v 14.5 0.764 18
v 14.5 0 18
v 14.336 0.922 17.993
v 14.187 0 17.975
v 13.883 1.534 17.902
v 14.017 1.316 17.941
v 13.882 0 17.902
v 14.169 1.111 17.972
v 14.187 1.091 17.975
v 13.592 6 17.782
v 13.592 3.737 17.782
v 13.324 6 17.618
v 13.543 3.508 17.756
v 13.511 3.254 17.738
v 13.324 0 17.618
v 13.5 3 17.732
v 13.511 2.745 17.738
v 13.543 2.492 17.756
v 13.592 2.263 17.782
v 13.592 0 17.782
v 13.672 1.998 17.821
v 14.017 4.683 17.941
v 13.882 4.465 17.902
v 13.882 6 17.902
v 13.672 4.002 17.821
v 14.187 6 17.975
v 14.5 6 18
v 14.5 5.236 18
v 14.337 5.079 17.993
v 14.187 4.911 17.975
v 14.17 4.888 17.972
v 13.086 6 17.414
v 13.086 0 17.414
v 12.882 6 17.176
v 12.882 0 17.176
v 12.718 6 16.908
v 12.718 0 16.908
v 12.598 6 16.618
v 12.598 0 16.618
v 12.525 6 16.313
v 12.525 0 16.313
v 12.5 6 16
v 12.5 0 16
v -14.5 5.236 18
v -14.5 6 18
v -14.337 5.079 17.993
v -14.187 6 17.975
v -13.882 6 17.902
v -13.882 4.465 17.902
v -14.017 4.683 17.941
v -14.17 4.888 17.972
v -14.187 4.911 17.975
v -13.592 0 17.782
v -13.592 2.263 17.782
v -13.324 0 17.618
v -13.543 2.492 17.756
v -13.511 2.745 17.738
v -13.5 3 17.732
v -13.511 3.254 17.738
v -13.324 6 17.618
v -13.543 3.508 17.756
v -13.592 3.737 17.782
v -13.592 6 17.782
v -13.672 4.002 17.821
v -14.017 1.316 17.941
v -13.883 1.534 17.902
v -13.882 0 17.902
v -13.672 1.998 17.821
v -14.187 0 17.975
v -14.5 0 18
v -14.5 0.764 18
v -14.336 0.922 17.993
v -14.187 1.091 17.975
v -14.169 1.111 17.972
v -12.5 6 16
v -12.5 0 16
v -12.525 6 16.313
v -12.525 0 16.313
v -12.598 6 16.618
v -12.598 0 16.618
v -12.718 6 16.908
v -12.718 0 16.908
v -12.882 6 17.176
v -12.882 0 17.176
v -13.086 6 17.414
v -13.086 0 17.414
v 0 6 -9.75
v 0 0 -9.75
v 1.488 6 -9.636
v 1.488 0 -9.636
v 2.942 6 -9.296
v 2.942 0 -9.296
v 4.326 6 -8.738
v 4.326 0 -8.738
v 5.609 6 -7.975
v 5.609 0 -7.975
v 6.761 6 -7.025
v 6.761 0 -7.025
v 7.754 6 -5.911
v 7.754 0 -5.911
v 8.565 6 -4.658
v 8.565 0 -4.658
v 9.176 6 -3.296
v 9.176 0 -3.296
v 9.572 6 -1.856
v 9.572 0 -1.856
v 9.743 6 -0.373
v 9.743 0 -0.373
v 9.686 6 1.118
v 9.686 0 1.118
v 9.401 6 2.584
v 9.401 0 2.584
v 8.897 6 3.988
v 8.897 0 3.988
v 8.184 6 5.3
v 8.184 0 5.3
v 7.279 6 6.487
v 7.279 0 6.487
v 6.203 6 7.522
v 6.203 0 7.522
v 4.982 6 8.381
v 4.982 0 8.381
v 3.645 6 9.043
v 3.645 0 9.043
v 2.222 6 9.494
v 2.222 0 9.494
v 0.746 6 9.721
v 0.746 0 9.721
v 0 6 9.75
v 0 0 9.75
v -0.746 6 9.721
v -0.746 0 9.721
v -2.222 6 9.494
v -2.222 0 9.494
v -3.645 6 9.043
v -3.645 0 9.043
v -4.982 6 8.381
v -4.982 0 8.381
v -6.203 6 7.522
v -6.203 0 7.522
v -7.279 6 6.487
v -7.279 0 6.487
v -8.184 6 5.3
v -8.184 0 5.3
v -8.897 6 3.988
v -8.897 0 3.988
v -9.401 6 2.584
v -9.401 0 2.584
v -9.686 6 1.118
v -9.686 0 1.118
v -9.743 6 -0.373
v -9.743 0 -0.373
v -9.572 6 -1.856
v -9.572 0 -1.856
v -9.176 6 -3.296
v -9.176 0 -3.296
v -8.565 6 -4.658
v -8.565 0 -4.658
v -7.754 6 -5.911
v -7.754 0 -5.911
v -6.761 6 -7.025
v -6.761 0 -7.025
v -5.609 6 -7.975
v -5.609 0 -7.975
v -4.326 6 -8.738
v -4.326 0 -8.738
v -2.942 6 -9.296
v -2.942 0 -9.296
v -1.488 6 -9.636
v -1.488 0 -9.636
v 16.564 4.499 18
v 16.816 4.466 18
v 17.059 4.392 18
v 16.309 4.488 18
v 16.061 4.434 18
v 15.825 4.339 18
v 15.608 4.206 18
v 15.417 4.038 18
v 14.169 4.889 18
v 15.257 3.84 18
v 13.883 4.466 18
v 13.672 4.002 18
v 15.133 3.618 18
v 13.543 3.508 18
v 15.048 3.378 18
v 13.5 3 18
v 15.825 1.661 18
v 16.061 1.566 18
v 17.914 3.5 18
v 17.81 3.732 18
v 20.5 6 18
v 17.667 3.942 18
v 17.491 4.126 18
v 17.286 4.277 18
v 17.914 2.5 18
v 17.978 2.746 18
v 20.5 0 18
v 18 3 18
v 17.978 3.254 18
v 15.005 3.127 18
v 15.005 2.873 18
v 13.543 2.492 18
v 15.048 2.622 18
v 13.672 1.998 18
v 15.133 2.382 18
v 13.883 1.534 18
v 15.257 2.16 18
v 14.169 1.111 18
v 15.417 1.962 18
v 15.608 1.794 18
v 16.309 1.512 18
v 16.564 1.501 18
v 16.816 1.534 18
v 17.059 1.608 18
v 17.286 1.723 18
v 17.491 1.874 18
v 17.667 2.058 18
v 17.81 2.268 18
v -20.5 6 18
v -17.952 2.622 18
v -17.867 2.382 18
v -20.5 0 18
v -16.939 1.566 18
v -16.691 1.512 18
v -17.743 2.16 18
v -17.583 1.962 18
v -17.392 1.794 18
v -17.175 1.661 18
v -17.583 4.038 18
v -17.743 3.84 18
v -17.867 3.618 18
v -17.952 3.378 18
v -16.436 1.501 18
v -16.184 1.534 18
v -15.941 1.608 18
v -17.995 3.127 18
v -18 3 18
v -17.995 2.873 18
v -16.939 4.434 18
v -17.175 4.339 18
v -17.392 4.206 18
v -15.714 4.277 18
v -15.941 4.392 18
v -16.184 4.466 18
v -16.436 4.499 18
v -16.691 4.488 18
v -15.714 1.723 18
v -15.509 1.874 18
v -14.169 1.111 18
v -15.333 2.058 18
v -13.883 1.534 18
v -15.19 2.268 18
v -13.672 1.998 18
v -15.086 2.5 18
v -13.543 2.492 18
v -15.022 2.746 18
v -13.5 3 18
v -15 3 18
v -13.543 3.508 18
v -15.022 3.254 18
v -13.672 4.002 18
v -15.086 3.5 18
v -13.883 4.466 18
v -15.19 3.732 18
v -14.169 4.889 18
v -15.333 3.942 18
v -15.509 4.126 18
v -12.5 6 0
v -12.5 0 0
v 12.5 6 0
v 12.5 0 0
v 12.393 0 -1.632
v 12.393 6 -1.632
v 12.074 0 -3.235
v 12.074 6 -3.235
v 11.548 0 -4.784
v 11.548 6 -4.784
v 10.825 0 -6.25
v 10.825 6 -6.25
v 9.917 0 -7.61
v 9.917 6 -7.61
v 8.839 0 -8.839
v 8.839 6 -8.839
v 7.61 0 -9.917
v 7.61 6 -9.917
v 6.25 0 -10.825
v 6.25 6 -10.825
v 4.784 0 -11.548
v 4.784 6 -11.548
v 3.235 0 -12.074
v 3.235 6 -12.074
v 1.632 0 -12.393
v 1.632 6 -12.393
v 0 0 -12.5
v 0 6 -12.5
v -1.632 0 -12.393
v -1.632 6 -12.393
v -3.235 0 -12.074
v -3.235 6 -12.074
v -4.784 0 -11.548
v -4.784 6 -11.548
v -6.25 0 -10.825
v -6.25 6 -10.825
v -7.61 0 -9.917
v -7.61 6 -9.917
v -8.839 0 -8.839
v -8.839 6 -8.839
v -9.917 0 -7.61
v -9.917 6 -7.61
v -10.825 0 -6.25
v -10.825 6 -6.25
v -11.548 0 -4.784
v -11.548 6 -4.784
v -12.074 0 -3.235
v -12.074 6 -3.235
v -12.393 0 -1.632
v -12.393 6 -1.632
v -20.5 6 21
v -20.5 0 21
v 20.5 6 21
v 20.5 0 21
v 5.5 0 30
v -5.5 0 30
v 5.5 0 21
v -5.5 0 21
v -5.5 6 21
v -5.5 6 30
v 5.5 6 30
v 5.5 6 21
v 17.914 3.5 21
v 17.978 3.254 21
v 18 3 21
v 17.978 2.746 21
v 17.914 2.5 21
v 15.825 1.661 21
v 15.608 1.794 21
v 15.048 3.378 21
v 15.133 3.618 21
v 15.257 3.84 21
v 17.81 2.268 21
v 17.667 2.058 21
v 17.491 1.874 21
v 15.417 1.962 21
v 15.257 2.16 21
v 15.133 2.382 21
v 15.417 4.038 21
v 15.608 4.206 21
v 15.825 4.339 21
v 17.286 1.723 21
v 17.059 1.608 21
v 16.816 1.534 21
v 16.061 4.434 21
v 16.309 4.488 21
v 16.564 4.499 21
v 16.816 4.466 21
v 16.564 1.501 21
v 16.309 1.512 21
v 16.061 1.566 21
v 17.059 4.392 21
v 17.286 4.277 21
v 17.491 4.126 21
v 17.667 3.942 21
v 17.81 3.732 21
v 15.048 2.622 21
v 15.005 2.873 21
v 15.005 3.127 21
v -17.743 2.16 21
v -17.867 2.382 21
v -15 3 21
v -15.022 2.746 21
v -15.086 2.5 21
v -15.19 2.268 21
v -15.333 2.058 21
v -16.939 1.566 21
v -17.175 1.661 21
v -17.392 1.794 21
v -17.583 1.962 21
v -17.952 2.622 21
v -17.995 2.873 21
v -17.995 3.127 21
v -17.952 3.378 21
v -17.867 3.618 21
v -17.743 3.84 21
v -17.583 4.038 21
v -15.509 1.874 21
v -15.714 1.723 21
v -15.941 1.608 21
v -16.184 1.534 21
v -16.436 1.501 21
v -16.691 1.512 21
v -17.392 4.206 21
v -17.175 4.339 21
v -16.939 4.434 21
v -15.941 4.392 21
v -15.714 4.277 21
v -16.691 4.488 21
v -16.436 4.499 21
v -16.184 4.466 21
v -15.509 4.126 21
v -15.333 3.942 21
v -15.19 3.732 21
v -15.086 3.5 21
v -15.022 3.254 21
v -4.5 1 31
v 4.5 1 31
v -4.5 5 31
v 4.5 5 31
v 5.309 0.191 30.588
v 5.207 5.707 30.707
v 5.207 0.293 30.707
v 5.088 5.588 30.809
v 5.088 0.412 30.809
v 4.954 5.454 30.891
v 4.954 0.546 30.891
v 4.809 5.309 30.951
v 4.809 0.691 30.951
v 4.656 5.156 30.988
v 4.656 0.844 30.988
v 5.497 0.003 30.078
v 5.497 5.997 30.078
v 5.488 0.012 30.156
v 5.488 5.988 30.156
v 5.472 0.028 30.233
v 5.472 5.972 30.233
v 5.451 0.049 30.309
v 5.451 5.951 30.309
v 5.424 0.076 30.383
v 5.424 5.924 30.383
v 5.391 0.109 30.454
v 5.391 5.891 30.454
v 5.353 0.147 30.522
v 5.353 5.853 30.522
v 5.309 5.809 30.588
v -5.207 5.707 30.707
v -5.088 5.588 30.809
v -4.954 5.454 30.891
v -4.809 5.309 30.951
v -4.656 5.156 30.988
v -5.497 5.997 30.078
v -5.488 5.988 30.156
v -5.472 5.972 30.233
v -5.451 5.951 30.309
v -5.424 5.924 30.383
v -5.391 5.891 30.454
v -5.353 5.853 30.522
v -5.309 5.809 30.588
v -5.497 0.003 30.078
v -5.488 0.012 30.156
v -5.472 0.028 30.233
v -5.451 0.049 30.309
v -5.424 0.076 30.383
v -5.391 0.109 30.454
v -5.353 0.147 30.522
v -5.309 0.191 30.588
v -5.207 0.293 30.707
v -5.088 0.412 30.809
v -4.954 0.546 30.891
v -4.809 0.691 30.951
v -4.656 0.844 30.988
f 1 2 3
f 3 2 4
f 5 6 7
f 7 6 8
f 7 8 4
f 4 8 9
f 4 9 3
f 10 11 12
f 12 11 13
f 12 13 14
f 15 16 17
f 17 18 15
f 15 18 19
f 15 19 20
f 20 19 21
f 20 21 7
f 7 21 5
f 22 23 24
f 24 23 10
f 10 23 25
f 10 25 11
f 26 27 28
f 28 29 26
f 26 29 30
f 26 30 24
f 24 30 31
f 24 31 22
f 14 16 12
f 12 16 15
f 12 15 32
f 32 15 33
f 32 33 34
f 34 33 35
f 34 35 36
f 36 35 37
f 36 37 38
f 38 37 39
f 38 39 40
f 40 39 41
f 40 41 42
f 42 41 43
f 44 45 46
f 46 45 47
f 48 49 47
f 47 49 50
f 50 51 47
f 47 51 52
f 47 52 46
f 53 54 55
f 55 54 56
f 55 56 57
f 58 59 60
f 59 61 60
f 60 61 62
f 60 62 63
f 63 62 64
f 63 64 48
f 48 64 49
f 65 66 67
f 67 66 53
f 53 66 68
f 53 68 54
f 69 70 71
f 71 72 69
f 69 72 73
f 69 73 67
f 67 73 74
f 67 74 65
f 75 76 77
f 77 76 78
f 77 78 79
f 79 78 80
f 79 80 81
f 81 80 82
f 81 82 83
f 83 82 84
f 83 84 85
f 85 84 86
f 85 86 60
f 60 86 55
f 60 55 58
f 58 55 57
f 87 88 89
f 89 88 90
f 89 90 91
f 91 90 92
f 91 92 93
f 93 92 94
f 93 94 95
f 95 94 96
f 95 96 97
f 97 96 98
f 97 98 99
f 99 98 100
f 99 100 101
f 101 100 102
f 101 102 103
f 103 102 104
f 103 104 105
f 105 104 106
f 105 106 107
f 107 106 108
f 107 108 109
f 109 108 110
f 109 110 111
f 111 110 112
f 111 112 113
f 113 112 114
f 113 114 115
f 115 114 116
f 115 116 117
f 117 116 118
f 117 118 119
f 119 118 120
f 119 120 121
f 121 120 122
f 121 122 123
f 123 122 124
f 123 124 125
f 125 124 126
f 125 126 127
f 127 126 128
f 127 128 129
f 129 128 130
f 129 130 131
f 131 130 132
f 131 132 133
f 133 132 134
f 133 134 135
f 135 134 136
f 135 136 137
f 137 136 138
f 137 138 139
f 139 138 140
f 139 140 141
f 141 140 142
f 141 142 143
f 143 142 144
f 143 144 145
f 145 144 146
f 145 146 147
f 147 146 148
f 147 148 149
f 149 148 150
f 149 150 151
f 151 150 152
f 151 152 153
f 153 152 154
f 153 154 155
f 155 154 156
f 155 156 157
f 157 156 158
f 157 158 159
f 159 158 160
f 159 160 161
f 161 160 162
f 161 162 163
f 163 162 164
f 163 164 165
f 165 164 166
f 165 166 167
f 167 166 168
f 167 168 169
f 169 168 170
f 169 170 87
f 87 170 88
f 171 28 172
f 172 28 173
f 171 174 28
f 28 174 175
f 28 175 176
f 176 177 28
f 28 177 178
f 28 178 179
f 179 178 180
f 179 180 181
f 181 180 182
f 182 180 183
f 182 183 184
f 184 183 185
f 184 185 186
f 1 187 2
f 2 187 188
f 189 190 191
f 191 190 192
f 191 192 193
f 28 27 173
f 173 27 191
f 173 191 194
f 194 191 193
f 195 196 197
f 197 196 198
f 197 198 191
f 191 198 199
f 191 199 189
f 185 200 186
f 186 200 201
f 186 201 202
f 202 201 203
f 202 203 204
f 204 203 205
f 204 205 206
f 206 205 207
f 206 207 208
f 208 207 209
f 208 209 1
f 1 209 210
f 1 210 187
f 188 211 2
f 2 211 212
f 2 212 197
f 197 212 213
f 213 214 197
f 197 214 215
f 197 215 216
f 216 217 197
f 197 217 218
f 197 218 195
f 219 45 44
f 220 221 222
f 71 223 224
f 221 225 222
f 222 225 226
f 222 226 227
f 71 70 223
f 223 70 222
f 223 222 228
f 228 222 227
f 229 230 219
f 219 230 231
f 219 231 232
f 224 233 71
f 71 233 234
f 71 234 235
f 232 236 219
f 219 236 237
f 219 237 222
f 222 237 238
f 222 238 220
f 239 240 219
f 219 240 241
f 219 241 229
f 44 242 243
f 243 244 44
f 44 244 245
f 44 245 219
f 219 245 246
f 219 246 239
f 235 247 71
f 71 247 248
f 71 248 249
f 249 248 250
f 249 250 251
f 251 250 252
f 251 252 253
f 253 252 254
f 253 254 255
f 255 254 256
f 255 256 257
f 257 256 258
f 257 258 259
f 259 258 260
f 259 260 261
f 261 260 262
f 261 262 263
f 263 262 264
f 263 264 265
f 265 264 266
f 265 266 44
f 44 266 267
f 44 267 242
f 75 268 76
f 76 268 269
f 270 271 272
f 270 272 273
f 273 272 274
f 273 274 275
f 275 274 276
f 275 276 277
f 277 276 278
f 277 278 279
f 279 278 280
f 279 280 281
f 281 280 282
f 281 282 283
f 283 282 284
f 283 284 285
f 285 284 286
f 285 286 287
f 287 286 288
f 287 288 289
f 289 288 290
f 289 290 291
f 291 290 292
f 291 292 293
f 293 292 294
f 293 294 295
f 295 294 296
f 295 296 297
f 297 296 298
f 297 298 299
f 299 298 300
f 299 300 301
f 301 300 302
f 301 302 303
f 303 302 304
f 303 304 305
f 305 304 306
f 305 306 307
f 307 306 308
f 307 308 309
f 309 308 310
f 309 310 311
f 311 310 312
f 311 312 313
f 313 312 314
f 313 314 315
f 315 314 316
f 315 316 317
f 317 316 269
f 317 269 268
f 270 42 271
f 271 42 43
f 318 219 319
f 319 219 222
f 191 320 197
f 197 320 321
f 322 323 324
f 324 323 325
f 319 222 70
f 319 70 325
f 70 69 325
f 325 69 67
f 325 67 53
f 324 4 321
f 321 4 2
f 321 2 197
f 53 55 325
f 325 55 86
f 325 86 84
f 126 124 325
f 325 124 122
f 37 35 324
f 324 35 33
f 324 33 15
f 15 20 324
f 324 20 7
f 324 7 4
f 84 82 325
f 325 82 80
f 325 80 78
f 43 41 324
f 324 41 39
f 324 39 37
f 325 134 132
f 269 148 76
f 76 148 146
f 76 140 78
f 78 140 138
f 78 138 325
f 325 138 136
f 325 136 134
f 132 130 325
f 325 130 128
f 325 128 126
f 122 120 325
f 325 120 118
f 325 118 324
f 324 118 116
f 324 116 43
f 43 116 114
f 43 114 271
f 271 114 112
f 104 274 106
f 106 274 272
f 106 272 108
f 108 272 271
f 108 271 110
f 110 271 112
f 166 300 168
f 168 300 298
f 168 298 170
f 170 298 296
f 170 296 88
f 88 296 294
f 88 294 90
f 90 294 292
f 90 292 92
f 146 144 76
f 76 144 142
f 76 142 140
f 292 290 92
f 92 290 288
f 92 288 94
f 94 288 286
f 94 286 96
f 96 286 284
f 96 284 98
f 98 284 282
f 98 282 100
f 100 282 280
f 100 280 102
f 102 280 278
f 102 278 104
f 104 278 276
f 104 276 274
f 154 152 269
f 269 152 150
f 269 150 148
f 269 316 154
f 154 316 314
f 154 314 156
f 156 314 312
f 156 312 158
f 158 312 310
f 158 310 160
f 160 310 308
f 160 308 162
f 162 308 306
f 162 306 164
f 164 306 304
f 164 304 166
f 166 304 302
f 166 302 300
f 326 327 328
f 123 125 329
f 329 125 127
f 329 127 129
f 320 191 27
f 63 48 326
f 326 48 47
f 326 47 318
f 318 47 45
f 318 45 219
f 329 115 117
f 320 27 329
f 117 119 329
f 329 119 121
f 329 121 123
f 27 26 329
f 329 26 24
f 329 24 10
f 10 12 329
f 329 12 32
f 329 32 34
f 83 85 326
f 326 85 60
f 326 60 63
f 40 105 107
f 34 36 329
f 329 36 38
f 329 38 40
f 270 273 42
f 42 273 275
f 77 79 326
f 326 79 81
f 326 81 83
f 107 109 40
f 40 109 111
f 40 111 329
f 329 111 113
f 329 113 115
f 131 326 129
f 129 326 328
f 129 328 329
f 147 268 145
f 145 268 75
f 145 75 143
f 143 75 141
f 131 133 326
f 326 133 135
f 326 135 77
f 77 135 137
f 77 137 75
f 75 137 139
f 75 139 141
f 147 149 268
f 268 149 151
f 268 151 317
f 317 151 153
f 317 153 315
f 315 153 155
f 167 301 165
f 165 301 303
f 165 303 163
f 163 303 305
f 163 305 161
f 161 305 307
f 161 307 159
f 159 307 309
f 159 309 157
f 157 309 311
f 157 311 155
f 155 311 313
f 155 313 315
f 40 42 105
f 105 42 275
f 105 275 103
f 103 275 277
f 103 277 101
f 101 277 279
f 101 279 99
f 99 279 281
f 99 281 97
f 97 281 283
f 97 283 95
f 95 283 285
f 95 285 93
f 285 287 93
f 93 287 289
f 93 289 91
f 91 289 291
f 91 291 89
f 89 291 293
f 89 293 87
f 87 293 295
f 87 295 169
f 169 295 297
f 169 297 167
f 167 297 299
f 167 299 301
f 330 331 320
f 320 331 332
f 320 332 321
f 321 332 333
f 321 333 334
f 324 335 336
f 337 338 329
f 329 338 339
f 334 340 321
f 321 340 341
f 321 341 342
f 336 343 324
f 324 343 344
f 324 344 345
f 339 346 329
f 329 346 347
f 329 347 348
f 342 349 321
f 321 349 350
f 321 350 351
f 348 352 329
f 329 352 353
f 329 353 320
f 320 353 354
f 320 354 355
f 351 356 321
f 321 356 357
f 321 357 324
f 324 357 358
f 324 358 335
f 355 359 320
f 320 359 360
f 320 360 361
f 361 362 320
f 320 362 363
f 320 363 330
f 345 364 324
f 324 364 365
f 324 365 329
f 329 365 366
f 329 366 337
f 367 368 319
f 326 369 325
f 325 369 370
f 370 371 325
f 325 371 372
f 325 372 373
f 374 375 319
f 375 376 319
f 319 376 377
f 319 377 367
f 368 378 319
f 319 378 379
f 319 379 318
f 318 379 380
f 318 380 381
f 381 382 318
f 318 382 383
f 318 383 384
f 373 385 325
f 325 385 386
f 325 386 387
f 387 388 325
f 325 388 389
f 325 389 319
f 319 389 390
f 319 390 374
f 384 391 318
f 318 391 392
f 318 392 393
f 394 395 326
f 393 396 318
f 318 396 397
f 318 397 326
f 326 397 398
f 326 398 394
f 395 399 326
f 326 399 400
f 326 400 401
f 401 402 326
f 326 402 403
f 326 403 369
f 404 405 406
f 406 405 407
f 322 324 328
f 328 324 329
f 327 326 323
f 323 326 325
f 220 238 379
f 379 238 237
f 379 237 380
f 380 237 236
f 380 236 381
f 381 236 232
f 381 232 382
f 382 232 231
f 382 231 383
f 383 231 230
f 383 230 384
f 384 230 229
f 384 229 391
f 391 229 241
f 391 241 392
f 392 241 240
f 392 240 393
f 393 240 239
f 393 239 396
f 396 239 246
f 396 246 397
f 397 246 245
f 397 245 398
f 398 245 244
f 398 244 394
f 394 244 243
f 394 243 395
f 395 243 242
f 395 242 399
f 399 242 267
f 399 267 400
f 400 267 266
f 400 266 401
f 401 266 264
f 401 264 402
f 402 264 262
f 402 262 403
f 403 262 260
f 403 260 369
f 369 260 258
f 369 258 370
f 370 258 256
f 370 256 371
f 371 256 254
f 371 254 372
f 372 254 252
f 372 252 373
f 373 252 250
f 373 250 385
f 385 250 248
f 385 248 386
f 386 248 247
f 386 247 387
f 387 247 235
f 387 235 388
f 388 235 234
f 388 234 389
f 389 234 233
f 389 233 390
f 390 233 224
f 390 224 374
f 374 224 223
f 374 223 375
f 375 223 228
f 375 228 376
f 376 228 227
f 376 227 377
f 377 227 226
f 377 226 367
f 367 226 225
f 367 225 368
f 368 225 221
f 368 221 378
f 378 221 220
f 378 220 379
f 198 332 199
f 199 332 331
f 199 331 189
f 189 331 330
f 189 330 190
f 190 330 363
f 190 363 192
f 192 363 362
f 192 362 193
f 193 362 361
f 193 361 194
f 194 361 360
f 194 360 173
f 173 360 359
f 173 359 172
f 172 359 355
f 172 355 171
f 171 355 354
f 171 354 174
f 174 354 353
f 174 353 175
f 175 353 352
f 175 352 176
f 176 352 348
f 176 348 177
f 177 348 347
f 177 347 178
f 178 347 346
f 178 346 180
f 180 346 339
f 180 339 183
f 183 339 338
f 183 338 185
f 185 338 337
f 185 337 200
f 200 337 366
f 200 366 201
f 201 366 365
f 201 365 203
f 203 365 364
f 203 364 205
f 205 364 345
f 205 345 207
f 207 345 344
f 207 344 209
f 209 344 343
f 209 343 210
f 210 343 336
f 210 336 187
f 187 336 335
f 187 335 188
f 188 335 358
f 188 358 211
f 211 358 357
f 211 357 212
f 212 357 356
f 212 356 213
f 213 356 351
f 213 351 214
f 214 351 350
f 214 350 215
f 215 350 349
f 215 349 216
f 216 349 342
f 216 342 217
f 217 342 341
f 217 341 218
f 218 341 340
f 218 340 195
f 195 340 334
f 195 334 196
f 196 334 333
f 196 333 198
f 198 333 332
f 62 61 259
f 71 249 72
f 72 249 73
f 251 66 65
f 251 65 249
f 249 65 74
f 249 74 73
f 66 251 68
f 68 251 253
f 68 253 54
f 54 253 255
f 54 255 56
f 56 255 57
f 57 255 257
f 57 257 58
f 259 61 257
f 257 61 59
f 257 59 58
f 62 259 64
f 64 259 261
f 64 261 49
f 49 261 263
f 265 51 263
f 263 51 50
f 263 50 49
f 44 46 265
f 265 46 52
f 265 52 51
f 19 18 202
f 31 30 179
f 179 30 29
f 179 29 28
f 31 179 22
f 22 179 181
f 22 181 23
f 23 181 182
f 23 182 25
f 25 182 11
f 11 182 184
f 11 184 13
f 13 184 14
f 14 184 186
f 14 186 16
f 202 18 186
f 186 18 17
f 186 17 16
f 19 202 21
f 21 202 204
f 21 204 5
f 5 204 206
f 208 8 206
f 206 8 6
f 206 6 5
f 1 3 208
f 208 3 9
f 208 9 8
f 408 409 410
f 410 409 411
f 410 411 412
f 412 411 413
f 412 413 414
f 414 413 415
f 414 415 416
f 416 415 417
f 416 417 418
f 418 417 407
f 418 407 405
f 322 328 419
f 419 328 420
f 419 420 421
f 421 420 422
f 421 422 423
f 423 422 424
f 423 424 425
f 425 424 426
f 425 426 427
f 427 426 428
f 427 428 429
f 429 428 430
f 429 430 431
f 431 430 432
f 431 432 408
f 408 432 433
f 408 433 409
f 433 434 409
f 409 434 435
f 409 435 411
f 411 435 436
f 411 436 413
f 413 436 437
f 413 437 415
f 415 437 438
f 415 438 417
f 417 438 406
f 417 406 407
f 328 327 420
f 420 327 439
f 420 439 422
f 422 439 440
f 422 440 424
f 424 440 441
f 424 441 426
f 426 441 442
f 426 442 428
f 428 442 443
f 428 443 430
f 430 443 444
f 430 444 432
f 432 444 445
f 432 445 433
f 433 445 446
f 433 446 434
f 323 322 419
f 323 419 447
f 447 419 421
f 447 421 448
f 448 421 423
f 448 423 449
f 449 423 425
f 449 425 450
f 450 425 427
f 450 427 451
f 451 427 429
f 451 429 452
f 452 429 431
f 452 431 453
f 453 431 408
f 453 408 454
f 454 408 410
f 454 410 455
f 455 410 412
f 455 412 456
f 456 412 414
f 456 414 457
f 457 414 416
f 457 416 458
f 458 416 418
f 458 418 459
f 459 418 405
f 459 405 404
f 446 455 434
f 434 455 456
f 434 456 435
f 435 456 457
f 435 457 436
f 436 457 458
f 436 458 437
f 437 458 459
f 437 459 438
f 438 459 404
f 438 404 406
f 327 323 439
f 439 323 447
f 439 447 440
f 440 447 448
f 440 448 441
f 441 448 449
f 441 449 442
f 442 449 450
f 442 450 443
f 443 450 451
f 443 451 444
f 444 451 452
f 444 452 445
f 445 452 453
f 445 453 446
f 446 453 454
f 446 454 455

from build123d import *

# Parameters (mm, degrees)
CROQUIS1_R              = 9.75
SALIENTE_EXTRUIR1_DEPTH = 6
CROQUIS2_R              = 1.5
CORTAR_EXTRUIR1_DEPTH   = 6
CROQUIS3_R              = 3
CORTAR_EXTRUIR2_DEPTH   = 6
REDONDEO1_R             = 1


with BuildPart() as part:
    # Croquis1 → Saliente-Extruir1 (new body)
    with BuildSketch(Plane(origin=(0, 0, 0), x_dir=(1, 0, 0), z_dir=(0, 1, 0))):
        with BuildLine():
            ThreePointArc((12.5, 0), (0, 12.5), (-12.5, 0))
            Line((-12.5, 0), (-12.5, -16))
            ThreePointArc((-12.5, -16), (-13.085786438, -17.414213562), (-14.5, -18))
            Line((-14.5, -18), (-20.5, -18))
            Line((-20.5, -18), (-20.5, -21))
            Line((-20.5, -21), (-5.5, -21))
            Line((-5.5, -21), (-5.5, -31))
            Line((-5.5, -31), (5.5, -31))
            Line((5.5, -31), (5.5, -21))
            Line((5.5, -21), (20.5, -21))
            Line((20.5, -21), (20.5, -18))
            Line((20.5, -18), (14.5, -18))
            ThreePointArc((14.5, -18), (13.085786438, -17.414213562), (12.5, -16))
            Line((12.5, -16), (12.5, 0))
        make_face()
        Circle(CROQUIS1_R, mode=Mode.SUBTRACT)
    extrude(amount=SALIENTE_EXTRUIR1_DEPTH)

    # Croquis2 → Cortar-Extruir1 (cut)
    with BuildSketch(Plane.XY.offset(21)):
        with Locations((-16.5, 3)):
            Circle(CROQUIS2_R)
        with Locations((16.5, 3)):
            Circle(CROQUIS2_R)
    extrude(amount=-CORTAR_EXTRUIR1_DEPTH, mode=Mode.SUBTRACT)

    # Croquis3 → Cortar-Extruir2 (cut)
    with BuildSketch(Plane(origin=(0, 0, 18), x_dir=(-1, 0, 0), z_dir=(0, 0, -1))):
        with Locations((-16.5, 3)):
            Circle(CROQUIS3_R)
        with Locations((16.5, 3)):
            Circle(CROQUIS3_R)
    extrude(amount=CORTAR_EXTRUIR2_DEPTH, mode=Mode.SUBTRACT)

    # Redondeo1
    redondeo1_edges = [part.edges().sort_by_distance(p)[0] for p in [
        (5.5, 3, 31),
        (-5.5, 3, 31),
        (0, 6, 31),
        (0, 0, 31),
    ]]
    fillet(redondeo1_edges, radius=REDONDEO1_R)


solid = part.part
